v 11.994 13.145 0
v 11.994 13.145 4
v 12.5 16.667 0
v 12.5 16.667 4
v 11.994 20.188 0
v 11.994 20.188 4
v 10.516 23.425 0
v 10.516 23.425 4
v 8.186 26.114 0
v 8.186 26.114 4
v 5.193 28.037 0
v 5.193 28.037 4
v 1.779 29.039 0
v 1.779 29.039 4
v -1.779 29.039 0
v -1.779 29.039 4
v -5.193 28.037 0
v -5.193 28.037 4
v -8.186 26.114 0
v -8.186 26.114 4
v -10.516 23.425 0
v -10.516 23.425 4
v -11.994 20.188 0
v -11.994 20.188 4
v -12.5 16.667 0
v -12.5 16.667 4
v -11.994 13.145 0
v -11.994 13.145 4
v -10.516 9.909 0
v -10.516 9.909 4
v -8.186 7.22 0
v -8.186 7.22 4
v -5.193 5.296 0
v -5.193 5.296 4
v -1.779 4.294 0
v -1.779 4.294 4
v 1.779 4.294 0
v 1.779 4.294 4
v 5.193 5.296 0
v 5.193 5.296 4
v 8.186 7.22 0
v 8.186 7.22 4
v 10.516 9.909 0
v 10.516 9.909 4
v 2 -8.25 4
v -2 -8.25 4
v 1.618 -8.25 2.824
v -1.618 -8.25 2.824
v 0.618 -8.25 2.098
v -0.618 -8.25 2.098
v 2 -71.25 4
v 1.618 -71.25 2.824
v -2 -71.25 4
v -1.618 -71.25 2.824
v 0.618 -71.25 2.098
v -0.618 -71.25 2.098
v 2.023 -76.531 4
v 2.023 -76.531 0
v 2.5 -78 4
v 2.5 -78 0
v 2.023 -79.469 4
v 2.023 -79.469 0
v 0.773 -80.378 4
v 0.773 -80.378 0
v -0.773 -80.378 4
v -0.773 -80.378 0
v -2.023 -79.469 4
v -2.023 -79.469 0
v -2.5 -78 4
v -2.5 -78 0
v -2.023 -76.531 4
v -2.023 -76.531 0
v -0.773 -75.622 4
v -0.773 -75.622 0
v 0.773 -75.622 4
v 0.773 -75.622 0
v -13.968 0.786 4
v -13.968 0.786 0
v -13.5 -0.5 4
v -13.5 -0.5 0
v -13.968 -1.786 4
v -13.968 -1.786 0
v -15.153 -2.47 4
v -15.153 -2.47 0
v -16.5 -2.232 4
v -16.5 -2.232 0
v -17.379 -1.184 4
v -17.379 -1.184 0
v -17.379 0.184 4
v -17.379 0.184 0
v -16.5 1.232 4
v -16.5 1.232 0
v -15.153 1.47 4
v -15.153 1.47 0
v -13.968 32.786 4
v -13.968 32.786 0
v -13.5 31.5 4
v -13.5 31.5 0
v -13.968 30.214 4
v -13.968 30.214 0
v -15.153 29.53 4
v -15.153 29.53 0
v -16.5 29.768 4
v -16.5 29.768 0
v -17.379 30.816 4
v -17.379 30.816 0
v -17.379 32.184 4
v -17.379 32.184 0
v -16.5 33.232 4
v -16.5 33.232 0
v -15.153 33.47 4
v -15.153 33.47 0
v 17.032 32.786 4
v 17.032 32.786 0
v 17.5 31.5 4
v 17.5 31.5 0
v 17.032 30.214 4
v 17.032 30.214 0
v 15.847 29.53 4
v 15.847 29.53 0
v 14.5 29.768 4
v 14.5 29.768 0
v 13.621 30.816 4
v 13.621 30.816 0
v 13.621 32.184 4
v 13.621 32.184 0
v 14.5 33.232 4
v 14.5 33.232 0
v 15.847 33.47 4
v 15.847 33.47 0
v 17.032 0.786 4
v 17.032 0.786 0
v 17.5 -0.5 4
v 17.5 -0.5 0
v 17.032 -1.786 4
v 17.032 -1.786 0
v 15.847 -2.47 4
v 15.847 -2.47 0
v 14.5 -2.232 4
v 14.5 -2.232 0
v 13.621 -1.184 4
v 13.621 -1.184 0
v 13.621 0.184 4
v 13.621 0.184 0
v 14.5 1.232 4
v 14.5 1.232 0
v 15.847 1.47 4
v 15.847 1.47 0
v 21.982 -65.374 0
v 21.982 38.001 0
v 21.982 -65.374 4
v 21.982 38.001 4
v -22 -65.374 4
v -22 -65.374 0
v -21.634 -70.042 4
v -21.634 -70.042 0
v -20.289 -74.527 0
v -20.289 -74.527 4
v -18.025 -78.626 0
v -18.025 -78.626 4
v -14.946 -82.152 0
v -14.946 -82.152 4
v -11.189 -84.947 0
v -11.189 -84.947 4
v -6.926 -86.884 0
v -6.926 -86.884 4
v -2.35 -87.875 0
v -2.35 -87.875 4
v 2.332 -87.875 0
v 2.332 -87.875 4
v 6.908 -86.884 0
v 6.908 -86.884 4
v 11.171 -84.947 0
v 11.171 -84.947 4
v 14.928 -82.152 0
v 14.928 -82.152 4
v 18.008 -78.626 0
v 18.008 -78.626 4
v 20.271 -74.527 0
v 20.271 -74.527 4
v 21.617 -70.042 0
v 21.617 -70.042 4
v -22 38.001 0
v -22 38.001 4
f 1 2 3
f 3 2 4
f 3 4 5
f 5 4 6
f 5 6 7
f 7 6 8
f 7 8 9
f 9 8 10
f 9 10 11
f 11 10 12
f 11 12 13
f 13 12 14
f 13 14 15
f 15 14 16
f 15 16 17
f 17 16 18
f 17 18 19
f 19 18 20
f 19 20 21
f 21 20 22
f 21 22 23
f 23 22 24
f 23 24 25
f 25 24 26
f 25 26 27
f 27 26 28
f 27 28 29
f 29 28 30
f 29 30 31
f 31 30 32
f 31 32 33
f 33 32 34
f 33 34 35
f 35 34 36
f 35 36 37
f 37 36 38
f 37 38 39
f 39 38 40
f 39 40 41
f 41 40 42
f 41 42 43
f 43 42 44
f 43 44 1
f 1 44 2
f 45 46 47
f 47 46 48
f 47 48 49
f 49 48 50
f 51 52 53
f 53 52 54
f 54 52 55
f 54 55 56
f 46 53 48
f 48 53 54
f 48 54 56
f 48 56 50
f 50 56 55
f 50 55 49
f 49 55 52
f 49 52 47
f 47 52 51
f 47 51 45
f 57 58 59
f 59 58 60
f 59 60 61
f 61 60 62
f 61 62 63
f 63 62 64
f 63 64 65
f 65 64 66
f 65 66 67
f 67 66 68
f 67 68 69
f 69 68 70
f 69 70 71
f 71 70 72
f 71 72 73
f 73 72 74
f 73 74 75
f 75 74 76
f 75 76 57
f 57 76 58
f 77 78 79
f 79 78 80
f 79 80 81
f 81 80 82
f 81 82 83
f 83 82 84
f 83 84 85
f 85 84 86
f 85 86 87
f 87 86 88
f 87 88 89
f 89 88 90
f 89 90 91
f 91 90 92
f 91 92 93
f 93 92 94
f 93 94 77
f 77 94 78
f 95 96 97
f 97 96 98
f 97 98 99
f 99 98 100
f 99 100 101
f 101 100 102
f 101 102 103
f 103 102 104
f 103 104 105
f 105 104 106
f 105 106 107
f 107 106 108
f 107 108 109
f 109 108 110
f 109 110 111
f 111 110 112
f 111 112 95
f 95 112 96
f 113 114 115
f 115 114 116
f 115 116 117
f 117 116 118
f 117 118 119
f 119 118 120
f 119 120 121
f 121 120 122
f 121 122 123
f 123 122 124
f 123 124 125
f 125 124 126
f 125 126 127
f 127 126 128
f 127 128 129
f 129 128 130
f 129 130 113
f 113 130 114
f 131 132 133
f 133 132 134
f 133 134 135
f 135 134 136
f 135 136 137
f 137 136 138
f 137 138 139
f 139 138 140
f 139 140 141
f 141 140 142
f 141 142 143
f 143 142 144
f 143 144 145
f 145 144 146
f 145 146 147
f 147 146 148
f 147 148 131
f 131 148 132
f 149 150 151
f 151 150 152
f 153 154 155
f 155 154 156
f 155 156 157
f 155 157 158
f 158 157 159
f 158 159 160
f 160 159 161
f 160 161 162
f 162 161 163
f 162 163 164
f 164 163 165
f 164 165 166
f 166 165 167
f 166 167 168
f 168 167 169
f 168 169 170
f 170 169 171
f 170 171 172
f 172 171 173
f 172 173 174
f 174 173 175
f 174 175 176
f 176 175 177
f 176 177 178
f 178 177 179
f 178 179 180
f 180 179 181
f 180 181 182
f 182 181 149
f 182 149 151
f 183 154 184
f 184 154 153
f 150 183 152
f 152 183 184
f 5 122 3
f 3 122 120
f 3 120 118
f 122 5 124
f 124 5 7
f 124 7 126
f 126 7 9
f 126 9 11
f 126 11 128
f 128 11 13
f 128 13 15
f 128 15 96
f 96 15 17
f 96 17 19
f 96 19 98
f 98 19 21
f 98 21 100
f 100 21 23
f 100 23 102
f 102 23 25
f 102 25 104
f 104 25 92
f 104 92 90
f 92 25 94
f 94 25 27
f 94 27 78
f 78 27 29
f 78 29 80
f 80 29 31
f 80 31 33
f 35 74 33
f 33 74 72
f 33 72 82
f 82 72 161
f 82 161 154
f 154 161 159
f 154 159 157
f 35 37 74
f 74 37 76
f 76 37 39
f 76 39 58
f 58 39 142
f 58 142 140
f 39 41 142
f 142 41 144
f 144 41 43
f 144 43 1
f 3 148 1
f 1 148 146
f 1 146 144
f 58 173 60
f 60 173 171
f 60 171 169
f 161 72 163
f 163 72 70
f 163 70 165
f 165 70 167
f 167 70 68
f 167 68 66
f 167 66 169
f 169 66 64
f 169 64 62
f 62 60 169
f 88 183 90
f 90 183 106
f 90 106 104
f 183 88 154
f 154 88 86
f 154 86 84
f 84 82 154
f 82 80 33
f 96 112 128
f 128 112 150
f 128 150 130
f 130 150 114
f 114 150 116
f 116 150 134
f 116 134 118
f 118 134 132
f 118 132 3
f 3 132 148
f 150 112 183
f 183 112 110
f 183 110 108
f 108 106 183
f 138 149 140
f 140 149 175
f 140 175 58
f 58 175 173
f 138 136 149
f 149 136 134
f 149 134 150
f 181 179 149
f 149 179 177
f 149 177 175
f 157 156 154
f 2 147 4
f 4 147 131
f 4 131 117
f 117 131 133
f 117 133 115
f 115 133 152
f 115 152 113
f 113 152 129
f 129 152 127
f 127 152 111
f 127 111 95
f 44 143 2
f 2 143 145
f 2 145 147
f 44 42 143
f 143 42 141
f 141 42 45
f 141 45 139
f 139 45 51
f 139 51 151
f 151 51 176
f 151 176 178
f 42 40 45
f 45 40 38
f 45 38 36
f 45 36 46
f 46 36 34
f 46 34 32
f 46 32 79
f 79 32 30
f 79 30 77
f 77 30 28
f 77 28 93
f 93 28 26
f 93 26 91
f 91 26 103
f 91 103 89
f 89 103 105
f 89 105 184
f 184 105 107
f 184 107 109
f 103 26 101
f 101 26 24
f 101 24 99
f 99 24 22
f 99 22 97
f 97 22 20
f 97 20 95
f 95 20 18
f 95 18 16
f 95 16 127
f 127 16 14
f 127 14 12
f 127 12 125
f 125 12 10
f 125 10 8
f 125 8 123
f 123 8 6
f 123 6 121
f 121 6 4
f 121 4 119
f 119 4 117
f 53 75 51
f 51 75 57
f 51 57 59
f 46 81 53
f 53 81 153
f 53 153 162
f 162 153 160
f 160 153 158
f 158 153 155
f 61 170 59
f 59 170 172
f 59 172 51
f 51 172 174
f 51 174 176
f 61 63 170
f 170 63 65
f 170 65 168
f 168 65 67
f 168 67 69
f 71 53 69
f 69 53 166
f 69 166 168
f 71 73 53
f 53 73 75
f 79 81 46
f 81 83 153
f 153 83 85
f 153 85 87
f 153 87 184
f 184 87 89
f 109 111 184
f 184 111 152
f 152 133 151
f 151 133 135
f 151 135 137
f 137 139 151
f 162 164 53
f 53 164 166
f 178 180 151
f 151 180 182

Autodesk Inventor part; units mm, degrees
ref_plane "YZ Plane" through (0, 0, 0) normal (1, 0, 0) x (0, 1, 0)
ref_plane "XY Plane" through (0, 0, 0) normal (0, 0, 1) x (1, 0, 0)
sketch "Sketch1" plane through (0, 0, 0) normal (0, 0, 1) x (1, 0, 0)
  line L0 (-22, 38.0007) -> (21.9822, 38.0007)
  line L1 (21.9822, 38.0007) -> (21.9822, -66)
  line L2 (-22, -66) -> (-22, 38.0007)
  arc A0 (-22, -65.3741) -> (21.9822, -65.3741) centre (-0.0089, -66) ccw
  point P0 (0, 0)
  dimension "d22" = 44
extrude "Extrusion1" add sketch "Sketch1" along normal blind 4
sketch "Sketch2" plane through (0, 0, 0) normal (0, 0, 1) x (1, 0, 0)
  circle A0 centre (-15.5, 31.5) radius 2
  circle A1 centre (15.5, 31.5) radius 2
  circle A2 centre (-15.5, -0.5) radius 2
  circle A3 centre (15.5, -0.5) radius 2
  point P0 (0, 0)
extrude "Extrusion2" cut sketch "Sketch2" along normal blind 4
sketch "Sketch3" plane through (0, 0, 0) normal (0, 0, 1) x (1, 0, 0)
  circle A0 centre (0, -78) radius 2.5
  point P0 (0, 0)
  dimension "d24" = 5
extrude "Extrusion3" cut sketch "Sketch3" along normal blind 4
ref_plane "Work Plane1" through (0, -60, 0) normal (0, 1, 0) x (-1, 0, 0)
sketch "Sketch4" plane through (0, -60, 0) normal (0, 1, 0) x (-1, 0, 0)
  circle A0 centre (0, 4) radius 2
  point P0 (0, 0)
  dimension "d14" = 4
extrude "Extrusion4" cut sketch "Sketch4" along normal blind 51.75 and the other way blind 11.25
sketch "Sketch5" plane through (0, 0, 4) normal (0, 0, 1) x (1, 0, 0)
  circle A0 centre (0, 16.6667) radius 12.5
  point P0 (0, 0)
  dimension "d19" = 25
extrude "Extrusion5" cut sketch "Sketch5" against normal blind 4
properties part number "DispenserBrace"
